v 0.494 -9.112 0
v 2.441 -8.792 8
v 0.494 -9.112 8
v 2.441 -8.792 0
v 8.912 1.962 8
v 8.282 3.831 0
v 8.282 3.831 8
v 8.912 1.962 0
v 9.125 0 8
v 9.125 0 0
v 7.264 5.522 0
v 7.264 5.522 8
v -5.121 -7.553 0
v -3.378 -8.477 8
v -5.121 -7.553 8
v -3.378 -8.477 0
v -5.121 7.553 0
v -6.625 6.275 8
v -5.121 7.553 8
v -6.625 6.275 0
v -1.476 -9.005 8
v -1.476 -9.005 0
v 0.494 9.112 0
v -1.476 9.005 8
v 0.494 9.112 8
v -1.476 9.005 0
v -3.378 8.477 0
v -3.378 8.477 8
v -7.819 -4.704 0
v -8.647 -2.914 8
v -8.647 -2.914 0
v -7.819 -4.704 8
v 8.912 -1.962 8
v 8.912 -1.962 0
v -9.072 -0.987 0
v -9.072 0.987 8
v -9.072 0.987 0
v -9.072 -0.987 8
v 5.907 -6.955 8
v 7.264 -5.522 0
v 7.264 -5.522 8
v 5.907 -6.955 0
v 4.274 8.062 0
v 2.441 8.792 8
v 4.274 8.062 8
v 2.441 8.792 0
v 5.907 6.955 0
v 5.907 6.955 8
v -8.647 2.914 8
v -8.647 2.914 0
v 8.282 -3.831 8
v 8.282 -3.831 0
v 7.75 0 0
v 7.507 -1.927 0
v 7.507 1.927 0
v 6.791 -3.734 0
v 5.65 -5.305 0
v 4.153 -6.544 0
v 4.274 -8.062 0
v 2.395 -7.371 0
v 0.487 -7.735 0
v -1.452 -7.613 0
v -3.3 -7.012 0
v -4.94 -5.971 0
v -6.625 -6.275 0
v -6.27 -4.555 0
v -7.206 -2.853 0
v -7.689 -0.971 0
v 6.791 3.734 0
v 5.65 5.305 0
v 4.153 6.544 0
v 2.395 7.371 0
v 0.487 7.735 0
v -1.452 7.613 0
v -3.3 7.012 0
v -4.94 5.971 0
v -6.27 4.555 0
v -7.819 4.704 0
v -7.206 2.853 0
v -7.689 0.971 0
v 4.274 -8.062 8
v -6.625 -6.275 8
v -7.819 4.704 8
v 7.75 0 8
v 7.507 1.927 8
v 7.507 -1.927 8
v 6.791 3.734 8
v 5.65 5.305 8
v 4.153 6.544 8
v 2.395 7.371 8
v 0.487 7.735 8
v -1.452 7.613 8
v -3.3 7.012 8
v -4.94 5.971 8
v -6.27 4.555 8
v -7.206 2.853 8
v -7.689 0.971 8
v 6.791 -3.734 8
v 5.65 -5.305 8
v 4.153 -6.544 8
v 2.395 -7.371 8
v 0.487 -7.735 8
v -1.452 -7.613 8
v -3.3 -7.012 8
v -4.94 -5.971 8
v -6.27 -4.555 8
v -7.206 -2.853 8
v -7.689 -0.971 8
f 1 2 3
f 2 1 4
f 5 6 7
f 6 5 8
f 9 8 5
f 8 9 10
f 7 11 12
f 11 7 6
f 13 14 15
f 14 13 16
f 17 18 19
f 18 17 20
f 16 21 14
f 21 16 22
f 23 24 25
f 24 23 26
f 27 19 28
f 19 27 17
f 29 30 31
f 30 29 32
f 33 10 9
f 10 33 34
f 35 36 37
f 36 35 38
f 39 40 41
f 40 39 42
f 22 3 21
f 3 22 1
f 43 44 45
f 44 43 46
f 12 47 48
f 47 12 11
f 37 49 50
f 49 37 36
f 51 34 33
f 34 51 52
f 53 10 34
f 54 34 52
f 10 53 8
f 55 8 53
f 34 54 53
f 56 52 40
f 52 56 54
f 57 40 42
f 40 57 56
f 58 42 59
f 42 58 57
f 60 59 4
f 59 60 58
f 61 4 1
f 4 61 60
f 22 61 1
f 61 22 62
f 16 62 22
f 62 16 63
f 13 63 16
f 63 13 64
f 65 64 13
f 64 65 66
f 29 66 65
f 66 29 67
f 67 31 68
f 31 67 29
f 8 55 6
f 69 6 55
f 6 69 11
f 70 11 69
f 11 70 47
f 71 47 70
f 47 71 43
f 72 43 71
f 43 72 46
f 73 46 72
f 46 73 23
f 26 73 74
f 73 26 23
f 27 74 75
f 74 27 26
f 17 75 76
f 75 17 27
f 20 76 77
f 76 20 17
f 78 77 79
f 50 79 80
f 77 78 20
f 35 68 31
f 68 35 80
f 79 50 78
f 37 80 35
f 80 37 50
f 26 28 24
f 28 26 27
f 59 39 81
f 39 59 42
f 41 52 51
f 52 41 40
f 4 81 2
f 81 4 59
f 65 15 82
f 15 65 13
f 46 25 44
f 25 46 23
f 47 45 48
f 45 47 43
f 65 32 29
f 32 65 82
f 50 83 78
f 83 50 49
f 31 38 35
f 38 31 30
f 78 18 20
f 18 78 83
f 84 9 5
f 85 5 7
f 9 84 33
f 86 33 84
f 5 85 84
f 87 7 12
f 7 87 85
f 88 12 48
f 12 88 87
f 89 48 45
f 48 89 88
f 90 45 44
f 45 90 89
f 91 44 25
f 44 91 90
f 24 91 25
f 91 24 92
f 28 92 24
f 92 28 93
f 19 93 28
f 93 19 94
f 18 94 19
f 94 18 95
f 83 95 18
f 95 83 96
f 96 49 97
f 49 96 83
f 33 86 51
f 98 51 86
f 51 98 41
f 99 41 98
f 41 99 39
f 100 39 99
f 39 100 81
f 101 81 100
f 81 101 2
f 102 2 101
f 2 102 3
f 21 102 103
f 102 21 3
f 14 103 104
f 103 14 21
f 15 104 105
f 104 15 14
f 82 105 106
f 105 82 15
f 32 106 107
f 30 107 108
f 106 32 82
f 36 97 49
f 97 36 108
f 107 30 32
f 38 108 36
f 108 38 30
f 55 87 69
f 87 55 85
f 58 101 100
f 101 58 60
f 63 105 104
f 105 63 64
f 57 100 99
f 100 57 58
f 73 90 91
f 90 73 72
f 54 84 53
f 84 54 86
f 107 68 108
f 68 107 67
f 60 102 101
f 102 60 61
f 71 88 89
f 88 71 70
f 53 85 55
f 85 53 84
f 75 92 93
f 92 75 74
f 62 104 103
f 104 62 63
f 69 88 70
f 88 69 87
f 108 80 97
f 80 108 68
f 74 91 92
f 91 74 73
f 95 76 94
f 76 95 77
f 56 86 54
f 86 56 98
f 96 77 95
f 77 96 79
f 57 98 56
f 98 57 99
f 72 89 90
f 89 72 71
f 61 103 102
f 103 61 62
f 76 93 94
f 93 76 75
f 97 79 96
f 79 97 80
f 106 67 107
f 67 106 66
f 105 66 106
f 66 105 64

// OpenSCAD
outer_diam = 18.25;
inner_diam = 15.5;
height = 8;

difference() {
    cylinder(h= height, r=outer_diam/2);
    translate([0,0,-1])
    cylinder(h= height + 2, r= inner_diam/2);
}
